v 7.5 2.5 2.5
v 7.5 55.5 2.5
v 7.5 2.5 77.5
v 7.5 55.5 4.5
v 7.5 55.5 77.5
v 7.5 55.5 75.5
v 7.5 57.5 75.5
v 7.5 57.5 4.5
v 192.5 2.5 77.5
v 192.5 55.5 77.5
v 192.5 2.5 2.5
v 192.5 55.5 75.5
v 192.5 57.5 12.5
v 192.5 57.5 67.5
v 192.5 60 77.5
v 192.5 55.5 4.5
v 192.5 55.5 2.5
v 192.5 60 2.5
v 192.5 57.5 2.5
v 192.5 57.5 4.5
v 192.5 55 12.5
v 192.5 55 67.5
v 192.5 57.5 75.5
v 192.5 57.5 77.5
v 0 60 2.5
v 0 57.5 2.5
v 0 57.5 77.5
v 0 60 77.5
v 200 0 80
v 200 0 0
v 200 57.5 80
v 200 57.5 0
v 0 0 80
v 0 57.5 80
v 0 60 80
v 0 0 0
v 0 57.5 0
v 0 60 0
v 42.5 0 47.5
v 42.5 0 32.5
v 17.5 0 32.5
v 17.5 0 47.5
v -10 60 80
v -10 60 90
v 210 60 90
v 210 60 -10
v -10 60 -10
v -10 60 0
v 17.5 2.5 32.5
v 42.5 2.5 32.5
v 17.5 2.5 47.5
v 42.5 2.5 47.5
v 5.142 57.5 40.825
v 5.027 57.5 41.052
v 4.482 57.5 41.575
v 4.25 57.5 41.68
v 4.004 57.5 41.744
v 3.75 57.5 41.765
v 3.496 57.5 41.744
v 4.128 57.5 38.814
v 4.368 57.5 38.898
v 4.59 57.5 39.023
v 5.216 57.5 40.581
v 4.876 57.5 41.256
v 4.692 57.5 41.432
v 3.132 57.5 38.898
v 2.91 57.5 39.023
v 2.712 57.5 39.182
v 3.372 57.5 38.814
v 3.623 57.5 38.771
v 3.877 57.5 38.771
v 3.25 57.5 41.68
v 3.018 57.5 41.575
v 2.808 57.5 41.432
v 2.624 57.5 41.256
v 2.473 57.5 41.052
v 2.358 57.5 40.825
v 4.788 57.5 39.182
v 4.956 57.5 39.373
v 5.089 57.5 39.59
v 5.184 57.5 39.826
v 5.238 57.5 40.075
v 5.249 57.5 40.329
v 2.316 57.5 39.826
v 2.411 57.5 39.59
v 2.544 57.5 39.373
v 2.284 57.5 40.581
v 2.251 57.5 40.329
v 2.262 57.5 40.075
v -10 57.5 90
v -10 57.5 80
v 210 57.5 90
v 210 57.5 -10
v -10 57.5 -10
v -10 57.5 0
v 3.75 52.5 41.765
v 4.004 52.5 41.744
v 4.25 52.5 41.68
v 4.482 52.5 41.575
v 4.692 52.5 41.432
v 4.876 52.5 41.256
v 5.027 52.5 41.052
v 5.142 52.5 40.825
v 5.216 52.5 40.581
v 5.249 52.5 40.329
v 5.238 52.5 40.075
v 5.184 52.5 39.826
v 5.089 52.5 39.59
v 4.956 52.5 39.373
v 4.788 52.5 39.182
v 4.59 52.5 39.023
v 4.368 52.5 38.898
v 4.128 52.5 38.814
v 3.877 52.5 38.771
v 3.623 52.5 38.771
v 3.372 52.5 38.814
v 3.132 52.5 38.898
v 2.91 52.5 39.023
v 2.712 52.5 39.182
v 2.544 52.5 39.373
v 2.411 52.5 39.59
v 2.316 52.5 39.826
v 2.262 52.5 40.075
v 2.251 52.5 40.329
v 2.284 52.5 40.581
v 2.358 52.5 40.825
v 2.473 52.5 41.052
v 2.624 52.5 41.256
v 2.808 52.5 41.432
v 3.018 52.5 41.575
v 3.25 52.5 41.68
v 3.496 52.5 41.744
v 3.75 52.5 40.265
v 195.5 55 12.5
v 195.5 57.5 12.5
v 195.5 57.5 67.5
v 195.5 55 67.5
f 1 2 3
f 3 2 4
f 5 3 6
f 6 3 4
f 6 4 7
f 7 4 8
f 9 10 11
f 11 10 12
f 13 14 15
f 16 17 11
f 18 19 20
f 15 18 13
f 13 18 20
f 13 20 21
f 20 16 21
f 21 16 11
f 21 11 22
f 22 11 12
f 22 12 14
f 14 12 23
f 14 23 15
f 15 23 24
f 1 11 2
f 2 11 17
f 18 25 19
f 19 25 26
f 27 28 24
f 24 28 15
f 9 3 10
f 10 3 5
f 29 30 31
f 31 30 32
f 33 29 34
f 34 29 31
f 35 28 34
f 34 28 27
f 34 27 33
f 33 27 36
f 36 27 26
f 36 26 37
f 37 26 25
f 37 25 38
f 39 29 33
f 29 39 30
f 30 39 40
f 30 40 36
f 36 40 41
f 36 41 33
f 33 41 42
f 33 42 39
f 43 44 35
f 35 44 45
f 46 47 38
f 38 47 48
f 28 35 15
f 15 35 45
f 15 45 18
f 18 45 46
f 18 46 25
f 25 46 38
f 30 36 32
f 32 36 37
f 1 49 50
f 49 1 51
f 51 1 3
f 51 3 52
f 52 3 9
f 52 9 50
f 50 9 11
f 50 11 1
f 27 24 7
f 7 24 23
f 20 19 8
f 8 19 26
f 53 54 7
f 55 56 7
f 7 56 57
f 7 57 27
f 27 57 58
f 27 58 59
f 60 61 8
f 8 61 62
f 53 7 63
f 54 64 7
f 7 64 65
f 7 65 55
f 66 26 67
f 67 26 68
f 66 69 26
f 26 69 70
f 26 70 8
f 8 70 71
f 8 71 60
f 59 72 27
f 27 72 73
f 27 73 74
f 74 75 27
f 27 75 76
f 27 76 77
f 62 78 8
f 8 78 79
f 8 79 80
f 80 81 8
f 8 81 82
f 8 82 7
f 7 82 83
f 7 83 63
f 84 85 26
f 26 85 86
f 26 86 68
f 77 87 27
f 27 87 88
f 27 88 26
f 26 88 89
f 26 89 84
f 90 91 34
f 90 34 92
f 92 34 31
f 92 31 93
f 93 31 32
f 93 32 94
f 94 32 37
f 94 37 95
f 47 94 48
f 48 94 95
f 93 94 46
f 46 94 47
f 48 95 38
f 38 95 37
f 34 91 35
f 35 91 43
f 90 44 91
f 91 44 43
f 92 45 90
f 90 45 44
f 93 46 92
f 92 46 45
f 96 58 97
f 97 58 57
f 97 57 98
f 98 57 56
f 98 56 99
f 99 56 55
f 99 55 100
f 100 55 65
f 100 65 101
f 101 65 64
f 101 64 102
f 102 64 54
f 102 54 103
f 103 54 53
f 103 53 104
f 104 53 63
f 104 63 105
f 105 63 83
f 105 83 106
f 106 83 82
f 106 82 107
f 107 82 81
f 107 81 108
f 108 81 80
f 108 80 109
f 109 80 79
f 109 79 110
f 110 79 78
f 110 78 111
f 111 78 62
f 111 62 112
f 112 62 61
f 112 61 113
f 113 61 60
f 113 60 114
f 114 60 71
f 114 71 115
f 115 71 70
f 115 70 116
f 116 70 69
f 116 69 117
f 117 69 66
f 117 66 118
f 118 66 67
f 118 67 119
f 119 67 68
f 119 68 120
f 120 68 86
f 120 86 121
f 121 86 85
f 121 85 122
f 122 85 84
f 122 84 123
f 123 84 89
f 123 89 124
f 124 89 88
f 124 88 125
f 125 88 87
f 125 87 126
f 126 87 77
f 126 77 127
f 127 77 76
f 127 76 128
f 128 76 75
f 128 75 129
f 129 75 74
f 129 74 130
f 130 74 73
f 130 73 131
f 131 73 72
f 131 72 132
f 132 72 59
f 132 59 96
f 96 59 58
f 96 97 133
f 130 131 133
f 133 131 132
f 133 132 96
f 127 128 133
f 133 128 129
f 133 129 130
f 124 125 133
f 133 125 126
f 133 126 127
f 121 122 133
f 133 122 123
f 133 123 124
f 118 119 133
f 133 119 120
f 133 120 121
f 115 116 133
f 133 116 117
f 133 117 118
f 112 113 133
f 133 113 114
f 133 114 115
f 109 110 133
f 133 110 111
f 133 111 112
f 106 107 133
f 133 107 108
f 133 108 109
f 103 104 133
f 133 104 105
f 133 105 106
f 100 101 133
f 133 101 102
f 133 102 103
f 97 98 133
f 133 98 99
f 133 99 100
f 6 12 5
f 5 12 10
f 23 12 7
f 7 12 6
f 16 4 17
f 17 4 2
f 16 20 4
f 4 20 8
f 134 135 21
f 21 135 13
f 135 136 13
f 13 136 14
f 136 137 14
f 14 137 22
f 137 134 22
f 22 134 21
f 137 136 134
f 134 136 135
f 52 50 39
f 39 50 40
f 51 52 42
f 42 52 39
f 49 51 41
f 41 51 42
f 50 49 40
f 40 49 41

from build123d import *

# Parameters (mm, degrees)
SKETCH1_W            = 200
SKETCH1_H            = 60
BOSS_EXTRUDE1_DEPTH  = 80
SKETCH2_W            = 185
SKETCH2_H            = 75
CUT_EXTRUDE1_DEPTH   = 57.5
SKETCH3_W            = 7.5
SKETCH3_H            = 75
CUT_EXTRUDE2_DEPTH   = 2.5
SKETCH4_W            = 210
SKETCH4_H            = 2.5
BOSS_EXTRUDE7_DEPTH  = 10
SKETCH9_W            = 210
SKETCH9_H            = 2.5
BOSS_EXTRUDE8_DEPTH  = 10
SKETCH10_W           = 100
SKETCH10_H           = 2.5
BOSS_EXTRUDE9_DEPTH  = 10
SKETCH11_R           = 1.5
CUT_EXTRUDE3_DEPTH   = 5
SKETCH12_W           = 185
SKETCH12_H           = 2
BOSS_EXTRUDE11_DEPTH = 2
SKETCH13_W           = 185
SKETCH13_H           = 2
BOSS_EXTRUDE12_DEPTH = 2
SKETCH14_W           = 55
SKETCH14_H           = 2.5
CUT_EXTRUDE4_DEPTH   = 3
SKETCH15_W           = 25
SKETCH15_H           = 15
CUT_EXTRUDE5_DEPTH   = 2.5


with BuildPart() as part:
    # Sketch1 → Boss-Extrude1 (new body)
    with BuildSketch(Plane.XY):
        with Locations((100, 30)):
            Rectangle(SKETCH1_W, SKETCH1_H)
    extrude(amount=BOSS_EXTRUDE1_DEPTH)

    # Sketch2 → Cut-Extrude1 (cut)
    with BuildSketch(Plane(origin=(0, 60, 0), x_dir=(1, 0, 0), z_dir=(0, 1, 0))):
        with Locations((100, -40)):
            Rectangle(SKETCH2_W, SKETCH2_H)
    extrude(amount=-CUT_EXTRUDE1_DEPTH, mode=Mode.SUBTRACT)

    # Sketch3 → Cut-Extrude2 (cut)
    with BuildSketch(Plane(origin=(0, 60, 0), x_dir=(1, 0, 0), z_dir=(0, 1, 0))):
        with Locations((3.75, -40)):
            Rectangle(SKETCH3_W, SKETCH3_H)
    extrude(amount=-CUT_EXTRUDE2_DEPTH, mode=Mode.SUBTRACT)

    # Sketch4 → Boss-Extrude7 (add)
    with BuildSketch(Plane(origin=(0, 0, 0), x_dir=(-1, 0, 0), z_dir=(0, 0, -1))):
        with Locations((-95, 58.75)):
            Rectangle(SKETCH4_W, SKETCH4_H)
    extrude(amount=BOSS_EXTRUDE7_DEPTH)

    # Sketch9 → Boss-Extrude8 (add)
    with BuildSketch(Plane.XY.offset(80)):
        with Locations((95, 58.75)):
            Rectangle(SKETCH9_W, SKETCH9_H)
    extrude(amount=BOSS_EXTRUDE8_DEPTH)

    # Sketch10 → Boss-Extrude9 (add)
    with BuildSketch(Plane(origin=(200, 0, 0), x_dir=(0, 0, -1), z_dir=(1, 0, 0))):
        with Locations((-40, 58.75)):
            Rectangle(SKETCH10_W, SKETCH10_H)
    extrude(amount=BOSS_EXTRUDE9_DEPTH)

    # Sketch11 → Cut-Extrude3 (cut)
    with BuildSketch(Plane(origin=(0, 57.5, 0), x_dir=(1, 0, 0), z_dir=(0, 1, 0))):
        with Locations((3.75, -40.265298021)):
            Circle(SKETCH11_R)
    extrude(amount=-CUT_EXTRUDE3_DEPTH, mode=Mode.SUBTRACT)

    # Sketch12 → Boss-Extrude11 (add)
    with BuildSketch(Plane(origin=(0, 0, 77.5), x_dir=(-1, 0, 0), z_dir=(0, 0, -1))):
        with Locations((-100, 56.5)):
            Rectangle(SKETCH12_W, SKETCH12_H)
    extrude(amount=BOSS_EXTRUDE11_DEPTH)

    # Sketch13 → Boss-Extrude12 (add)
    with BuildSketch(Plane.XY.offset(2.5)):
        with Locations((100, 56.5)):
            Rectangle(SKETCH13_W, SKETCH13_H)
    extrude(amount=BOSS_EXTRUDE12_DEPTH)

    # Sketch14 → Cut-Extrude4 (cut)
    with BuildSketch(Plane.ZY.offset(-192.5)):
        with Locations((40, 56.25)):
            Rectangle(SKETCH14_W, SKETCH14_H)
    extrude(amount=-CUT_EXTRUDE4_DEPTH, mode=Mode.SUBTRACT)

    # Sketch15 → Cut-Extrude5 (cut)
    with BuildSketch(Plane(origin=(0, 2.5, 0), x_dir=(1, 0, 0), z_dir=(0, 1, 0))):
        with Locations((30, -40)):
            Rectangle(SKETCH15_W, SKETCH15_H)
    extrude(amount=-CUT_EXTRUDE5_DEPTH, mode=Mode.SUBTRACT)


solid = part.part
